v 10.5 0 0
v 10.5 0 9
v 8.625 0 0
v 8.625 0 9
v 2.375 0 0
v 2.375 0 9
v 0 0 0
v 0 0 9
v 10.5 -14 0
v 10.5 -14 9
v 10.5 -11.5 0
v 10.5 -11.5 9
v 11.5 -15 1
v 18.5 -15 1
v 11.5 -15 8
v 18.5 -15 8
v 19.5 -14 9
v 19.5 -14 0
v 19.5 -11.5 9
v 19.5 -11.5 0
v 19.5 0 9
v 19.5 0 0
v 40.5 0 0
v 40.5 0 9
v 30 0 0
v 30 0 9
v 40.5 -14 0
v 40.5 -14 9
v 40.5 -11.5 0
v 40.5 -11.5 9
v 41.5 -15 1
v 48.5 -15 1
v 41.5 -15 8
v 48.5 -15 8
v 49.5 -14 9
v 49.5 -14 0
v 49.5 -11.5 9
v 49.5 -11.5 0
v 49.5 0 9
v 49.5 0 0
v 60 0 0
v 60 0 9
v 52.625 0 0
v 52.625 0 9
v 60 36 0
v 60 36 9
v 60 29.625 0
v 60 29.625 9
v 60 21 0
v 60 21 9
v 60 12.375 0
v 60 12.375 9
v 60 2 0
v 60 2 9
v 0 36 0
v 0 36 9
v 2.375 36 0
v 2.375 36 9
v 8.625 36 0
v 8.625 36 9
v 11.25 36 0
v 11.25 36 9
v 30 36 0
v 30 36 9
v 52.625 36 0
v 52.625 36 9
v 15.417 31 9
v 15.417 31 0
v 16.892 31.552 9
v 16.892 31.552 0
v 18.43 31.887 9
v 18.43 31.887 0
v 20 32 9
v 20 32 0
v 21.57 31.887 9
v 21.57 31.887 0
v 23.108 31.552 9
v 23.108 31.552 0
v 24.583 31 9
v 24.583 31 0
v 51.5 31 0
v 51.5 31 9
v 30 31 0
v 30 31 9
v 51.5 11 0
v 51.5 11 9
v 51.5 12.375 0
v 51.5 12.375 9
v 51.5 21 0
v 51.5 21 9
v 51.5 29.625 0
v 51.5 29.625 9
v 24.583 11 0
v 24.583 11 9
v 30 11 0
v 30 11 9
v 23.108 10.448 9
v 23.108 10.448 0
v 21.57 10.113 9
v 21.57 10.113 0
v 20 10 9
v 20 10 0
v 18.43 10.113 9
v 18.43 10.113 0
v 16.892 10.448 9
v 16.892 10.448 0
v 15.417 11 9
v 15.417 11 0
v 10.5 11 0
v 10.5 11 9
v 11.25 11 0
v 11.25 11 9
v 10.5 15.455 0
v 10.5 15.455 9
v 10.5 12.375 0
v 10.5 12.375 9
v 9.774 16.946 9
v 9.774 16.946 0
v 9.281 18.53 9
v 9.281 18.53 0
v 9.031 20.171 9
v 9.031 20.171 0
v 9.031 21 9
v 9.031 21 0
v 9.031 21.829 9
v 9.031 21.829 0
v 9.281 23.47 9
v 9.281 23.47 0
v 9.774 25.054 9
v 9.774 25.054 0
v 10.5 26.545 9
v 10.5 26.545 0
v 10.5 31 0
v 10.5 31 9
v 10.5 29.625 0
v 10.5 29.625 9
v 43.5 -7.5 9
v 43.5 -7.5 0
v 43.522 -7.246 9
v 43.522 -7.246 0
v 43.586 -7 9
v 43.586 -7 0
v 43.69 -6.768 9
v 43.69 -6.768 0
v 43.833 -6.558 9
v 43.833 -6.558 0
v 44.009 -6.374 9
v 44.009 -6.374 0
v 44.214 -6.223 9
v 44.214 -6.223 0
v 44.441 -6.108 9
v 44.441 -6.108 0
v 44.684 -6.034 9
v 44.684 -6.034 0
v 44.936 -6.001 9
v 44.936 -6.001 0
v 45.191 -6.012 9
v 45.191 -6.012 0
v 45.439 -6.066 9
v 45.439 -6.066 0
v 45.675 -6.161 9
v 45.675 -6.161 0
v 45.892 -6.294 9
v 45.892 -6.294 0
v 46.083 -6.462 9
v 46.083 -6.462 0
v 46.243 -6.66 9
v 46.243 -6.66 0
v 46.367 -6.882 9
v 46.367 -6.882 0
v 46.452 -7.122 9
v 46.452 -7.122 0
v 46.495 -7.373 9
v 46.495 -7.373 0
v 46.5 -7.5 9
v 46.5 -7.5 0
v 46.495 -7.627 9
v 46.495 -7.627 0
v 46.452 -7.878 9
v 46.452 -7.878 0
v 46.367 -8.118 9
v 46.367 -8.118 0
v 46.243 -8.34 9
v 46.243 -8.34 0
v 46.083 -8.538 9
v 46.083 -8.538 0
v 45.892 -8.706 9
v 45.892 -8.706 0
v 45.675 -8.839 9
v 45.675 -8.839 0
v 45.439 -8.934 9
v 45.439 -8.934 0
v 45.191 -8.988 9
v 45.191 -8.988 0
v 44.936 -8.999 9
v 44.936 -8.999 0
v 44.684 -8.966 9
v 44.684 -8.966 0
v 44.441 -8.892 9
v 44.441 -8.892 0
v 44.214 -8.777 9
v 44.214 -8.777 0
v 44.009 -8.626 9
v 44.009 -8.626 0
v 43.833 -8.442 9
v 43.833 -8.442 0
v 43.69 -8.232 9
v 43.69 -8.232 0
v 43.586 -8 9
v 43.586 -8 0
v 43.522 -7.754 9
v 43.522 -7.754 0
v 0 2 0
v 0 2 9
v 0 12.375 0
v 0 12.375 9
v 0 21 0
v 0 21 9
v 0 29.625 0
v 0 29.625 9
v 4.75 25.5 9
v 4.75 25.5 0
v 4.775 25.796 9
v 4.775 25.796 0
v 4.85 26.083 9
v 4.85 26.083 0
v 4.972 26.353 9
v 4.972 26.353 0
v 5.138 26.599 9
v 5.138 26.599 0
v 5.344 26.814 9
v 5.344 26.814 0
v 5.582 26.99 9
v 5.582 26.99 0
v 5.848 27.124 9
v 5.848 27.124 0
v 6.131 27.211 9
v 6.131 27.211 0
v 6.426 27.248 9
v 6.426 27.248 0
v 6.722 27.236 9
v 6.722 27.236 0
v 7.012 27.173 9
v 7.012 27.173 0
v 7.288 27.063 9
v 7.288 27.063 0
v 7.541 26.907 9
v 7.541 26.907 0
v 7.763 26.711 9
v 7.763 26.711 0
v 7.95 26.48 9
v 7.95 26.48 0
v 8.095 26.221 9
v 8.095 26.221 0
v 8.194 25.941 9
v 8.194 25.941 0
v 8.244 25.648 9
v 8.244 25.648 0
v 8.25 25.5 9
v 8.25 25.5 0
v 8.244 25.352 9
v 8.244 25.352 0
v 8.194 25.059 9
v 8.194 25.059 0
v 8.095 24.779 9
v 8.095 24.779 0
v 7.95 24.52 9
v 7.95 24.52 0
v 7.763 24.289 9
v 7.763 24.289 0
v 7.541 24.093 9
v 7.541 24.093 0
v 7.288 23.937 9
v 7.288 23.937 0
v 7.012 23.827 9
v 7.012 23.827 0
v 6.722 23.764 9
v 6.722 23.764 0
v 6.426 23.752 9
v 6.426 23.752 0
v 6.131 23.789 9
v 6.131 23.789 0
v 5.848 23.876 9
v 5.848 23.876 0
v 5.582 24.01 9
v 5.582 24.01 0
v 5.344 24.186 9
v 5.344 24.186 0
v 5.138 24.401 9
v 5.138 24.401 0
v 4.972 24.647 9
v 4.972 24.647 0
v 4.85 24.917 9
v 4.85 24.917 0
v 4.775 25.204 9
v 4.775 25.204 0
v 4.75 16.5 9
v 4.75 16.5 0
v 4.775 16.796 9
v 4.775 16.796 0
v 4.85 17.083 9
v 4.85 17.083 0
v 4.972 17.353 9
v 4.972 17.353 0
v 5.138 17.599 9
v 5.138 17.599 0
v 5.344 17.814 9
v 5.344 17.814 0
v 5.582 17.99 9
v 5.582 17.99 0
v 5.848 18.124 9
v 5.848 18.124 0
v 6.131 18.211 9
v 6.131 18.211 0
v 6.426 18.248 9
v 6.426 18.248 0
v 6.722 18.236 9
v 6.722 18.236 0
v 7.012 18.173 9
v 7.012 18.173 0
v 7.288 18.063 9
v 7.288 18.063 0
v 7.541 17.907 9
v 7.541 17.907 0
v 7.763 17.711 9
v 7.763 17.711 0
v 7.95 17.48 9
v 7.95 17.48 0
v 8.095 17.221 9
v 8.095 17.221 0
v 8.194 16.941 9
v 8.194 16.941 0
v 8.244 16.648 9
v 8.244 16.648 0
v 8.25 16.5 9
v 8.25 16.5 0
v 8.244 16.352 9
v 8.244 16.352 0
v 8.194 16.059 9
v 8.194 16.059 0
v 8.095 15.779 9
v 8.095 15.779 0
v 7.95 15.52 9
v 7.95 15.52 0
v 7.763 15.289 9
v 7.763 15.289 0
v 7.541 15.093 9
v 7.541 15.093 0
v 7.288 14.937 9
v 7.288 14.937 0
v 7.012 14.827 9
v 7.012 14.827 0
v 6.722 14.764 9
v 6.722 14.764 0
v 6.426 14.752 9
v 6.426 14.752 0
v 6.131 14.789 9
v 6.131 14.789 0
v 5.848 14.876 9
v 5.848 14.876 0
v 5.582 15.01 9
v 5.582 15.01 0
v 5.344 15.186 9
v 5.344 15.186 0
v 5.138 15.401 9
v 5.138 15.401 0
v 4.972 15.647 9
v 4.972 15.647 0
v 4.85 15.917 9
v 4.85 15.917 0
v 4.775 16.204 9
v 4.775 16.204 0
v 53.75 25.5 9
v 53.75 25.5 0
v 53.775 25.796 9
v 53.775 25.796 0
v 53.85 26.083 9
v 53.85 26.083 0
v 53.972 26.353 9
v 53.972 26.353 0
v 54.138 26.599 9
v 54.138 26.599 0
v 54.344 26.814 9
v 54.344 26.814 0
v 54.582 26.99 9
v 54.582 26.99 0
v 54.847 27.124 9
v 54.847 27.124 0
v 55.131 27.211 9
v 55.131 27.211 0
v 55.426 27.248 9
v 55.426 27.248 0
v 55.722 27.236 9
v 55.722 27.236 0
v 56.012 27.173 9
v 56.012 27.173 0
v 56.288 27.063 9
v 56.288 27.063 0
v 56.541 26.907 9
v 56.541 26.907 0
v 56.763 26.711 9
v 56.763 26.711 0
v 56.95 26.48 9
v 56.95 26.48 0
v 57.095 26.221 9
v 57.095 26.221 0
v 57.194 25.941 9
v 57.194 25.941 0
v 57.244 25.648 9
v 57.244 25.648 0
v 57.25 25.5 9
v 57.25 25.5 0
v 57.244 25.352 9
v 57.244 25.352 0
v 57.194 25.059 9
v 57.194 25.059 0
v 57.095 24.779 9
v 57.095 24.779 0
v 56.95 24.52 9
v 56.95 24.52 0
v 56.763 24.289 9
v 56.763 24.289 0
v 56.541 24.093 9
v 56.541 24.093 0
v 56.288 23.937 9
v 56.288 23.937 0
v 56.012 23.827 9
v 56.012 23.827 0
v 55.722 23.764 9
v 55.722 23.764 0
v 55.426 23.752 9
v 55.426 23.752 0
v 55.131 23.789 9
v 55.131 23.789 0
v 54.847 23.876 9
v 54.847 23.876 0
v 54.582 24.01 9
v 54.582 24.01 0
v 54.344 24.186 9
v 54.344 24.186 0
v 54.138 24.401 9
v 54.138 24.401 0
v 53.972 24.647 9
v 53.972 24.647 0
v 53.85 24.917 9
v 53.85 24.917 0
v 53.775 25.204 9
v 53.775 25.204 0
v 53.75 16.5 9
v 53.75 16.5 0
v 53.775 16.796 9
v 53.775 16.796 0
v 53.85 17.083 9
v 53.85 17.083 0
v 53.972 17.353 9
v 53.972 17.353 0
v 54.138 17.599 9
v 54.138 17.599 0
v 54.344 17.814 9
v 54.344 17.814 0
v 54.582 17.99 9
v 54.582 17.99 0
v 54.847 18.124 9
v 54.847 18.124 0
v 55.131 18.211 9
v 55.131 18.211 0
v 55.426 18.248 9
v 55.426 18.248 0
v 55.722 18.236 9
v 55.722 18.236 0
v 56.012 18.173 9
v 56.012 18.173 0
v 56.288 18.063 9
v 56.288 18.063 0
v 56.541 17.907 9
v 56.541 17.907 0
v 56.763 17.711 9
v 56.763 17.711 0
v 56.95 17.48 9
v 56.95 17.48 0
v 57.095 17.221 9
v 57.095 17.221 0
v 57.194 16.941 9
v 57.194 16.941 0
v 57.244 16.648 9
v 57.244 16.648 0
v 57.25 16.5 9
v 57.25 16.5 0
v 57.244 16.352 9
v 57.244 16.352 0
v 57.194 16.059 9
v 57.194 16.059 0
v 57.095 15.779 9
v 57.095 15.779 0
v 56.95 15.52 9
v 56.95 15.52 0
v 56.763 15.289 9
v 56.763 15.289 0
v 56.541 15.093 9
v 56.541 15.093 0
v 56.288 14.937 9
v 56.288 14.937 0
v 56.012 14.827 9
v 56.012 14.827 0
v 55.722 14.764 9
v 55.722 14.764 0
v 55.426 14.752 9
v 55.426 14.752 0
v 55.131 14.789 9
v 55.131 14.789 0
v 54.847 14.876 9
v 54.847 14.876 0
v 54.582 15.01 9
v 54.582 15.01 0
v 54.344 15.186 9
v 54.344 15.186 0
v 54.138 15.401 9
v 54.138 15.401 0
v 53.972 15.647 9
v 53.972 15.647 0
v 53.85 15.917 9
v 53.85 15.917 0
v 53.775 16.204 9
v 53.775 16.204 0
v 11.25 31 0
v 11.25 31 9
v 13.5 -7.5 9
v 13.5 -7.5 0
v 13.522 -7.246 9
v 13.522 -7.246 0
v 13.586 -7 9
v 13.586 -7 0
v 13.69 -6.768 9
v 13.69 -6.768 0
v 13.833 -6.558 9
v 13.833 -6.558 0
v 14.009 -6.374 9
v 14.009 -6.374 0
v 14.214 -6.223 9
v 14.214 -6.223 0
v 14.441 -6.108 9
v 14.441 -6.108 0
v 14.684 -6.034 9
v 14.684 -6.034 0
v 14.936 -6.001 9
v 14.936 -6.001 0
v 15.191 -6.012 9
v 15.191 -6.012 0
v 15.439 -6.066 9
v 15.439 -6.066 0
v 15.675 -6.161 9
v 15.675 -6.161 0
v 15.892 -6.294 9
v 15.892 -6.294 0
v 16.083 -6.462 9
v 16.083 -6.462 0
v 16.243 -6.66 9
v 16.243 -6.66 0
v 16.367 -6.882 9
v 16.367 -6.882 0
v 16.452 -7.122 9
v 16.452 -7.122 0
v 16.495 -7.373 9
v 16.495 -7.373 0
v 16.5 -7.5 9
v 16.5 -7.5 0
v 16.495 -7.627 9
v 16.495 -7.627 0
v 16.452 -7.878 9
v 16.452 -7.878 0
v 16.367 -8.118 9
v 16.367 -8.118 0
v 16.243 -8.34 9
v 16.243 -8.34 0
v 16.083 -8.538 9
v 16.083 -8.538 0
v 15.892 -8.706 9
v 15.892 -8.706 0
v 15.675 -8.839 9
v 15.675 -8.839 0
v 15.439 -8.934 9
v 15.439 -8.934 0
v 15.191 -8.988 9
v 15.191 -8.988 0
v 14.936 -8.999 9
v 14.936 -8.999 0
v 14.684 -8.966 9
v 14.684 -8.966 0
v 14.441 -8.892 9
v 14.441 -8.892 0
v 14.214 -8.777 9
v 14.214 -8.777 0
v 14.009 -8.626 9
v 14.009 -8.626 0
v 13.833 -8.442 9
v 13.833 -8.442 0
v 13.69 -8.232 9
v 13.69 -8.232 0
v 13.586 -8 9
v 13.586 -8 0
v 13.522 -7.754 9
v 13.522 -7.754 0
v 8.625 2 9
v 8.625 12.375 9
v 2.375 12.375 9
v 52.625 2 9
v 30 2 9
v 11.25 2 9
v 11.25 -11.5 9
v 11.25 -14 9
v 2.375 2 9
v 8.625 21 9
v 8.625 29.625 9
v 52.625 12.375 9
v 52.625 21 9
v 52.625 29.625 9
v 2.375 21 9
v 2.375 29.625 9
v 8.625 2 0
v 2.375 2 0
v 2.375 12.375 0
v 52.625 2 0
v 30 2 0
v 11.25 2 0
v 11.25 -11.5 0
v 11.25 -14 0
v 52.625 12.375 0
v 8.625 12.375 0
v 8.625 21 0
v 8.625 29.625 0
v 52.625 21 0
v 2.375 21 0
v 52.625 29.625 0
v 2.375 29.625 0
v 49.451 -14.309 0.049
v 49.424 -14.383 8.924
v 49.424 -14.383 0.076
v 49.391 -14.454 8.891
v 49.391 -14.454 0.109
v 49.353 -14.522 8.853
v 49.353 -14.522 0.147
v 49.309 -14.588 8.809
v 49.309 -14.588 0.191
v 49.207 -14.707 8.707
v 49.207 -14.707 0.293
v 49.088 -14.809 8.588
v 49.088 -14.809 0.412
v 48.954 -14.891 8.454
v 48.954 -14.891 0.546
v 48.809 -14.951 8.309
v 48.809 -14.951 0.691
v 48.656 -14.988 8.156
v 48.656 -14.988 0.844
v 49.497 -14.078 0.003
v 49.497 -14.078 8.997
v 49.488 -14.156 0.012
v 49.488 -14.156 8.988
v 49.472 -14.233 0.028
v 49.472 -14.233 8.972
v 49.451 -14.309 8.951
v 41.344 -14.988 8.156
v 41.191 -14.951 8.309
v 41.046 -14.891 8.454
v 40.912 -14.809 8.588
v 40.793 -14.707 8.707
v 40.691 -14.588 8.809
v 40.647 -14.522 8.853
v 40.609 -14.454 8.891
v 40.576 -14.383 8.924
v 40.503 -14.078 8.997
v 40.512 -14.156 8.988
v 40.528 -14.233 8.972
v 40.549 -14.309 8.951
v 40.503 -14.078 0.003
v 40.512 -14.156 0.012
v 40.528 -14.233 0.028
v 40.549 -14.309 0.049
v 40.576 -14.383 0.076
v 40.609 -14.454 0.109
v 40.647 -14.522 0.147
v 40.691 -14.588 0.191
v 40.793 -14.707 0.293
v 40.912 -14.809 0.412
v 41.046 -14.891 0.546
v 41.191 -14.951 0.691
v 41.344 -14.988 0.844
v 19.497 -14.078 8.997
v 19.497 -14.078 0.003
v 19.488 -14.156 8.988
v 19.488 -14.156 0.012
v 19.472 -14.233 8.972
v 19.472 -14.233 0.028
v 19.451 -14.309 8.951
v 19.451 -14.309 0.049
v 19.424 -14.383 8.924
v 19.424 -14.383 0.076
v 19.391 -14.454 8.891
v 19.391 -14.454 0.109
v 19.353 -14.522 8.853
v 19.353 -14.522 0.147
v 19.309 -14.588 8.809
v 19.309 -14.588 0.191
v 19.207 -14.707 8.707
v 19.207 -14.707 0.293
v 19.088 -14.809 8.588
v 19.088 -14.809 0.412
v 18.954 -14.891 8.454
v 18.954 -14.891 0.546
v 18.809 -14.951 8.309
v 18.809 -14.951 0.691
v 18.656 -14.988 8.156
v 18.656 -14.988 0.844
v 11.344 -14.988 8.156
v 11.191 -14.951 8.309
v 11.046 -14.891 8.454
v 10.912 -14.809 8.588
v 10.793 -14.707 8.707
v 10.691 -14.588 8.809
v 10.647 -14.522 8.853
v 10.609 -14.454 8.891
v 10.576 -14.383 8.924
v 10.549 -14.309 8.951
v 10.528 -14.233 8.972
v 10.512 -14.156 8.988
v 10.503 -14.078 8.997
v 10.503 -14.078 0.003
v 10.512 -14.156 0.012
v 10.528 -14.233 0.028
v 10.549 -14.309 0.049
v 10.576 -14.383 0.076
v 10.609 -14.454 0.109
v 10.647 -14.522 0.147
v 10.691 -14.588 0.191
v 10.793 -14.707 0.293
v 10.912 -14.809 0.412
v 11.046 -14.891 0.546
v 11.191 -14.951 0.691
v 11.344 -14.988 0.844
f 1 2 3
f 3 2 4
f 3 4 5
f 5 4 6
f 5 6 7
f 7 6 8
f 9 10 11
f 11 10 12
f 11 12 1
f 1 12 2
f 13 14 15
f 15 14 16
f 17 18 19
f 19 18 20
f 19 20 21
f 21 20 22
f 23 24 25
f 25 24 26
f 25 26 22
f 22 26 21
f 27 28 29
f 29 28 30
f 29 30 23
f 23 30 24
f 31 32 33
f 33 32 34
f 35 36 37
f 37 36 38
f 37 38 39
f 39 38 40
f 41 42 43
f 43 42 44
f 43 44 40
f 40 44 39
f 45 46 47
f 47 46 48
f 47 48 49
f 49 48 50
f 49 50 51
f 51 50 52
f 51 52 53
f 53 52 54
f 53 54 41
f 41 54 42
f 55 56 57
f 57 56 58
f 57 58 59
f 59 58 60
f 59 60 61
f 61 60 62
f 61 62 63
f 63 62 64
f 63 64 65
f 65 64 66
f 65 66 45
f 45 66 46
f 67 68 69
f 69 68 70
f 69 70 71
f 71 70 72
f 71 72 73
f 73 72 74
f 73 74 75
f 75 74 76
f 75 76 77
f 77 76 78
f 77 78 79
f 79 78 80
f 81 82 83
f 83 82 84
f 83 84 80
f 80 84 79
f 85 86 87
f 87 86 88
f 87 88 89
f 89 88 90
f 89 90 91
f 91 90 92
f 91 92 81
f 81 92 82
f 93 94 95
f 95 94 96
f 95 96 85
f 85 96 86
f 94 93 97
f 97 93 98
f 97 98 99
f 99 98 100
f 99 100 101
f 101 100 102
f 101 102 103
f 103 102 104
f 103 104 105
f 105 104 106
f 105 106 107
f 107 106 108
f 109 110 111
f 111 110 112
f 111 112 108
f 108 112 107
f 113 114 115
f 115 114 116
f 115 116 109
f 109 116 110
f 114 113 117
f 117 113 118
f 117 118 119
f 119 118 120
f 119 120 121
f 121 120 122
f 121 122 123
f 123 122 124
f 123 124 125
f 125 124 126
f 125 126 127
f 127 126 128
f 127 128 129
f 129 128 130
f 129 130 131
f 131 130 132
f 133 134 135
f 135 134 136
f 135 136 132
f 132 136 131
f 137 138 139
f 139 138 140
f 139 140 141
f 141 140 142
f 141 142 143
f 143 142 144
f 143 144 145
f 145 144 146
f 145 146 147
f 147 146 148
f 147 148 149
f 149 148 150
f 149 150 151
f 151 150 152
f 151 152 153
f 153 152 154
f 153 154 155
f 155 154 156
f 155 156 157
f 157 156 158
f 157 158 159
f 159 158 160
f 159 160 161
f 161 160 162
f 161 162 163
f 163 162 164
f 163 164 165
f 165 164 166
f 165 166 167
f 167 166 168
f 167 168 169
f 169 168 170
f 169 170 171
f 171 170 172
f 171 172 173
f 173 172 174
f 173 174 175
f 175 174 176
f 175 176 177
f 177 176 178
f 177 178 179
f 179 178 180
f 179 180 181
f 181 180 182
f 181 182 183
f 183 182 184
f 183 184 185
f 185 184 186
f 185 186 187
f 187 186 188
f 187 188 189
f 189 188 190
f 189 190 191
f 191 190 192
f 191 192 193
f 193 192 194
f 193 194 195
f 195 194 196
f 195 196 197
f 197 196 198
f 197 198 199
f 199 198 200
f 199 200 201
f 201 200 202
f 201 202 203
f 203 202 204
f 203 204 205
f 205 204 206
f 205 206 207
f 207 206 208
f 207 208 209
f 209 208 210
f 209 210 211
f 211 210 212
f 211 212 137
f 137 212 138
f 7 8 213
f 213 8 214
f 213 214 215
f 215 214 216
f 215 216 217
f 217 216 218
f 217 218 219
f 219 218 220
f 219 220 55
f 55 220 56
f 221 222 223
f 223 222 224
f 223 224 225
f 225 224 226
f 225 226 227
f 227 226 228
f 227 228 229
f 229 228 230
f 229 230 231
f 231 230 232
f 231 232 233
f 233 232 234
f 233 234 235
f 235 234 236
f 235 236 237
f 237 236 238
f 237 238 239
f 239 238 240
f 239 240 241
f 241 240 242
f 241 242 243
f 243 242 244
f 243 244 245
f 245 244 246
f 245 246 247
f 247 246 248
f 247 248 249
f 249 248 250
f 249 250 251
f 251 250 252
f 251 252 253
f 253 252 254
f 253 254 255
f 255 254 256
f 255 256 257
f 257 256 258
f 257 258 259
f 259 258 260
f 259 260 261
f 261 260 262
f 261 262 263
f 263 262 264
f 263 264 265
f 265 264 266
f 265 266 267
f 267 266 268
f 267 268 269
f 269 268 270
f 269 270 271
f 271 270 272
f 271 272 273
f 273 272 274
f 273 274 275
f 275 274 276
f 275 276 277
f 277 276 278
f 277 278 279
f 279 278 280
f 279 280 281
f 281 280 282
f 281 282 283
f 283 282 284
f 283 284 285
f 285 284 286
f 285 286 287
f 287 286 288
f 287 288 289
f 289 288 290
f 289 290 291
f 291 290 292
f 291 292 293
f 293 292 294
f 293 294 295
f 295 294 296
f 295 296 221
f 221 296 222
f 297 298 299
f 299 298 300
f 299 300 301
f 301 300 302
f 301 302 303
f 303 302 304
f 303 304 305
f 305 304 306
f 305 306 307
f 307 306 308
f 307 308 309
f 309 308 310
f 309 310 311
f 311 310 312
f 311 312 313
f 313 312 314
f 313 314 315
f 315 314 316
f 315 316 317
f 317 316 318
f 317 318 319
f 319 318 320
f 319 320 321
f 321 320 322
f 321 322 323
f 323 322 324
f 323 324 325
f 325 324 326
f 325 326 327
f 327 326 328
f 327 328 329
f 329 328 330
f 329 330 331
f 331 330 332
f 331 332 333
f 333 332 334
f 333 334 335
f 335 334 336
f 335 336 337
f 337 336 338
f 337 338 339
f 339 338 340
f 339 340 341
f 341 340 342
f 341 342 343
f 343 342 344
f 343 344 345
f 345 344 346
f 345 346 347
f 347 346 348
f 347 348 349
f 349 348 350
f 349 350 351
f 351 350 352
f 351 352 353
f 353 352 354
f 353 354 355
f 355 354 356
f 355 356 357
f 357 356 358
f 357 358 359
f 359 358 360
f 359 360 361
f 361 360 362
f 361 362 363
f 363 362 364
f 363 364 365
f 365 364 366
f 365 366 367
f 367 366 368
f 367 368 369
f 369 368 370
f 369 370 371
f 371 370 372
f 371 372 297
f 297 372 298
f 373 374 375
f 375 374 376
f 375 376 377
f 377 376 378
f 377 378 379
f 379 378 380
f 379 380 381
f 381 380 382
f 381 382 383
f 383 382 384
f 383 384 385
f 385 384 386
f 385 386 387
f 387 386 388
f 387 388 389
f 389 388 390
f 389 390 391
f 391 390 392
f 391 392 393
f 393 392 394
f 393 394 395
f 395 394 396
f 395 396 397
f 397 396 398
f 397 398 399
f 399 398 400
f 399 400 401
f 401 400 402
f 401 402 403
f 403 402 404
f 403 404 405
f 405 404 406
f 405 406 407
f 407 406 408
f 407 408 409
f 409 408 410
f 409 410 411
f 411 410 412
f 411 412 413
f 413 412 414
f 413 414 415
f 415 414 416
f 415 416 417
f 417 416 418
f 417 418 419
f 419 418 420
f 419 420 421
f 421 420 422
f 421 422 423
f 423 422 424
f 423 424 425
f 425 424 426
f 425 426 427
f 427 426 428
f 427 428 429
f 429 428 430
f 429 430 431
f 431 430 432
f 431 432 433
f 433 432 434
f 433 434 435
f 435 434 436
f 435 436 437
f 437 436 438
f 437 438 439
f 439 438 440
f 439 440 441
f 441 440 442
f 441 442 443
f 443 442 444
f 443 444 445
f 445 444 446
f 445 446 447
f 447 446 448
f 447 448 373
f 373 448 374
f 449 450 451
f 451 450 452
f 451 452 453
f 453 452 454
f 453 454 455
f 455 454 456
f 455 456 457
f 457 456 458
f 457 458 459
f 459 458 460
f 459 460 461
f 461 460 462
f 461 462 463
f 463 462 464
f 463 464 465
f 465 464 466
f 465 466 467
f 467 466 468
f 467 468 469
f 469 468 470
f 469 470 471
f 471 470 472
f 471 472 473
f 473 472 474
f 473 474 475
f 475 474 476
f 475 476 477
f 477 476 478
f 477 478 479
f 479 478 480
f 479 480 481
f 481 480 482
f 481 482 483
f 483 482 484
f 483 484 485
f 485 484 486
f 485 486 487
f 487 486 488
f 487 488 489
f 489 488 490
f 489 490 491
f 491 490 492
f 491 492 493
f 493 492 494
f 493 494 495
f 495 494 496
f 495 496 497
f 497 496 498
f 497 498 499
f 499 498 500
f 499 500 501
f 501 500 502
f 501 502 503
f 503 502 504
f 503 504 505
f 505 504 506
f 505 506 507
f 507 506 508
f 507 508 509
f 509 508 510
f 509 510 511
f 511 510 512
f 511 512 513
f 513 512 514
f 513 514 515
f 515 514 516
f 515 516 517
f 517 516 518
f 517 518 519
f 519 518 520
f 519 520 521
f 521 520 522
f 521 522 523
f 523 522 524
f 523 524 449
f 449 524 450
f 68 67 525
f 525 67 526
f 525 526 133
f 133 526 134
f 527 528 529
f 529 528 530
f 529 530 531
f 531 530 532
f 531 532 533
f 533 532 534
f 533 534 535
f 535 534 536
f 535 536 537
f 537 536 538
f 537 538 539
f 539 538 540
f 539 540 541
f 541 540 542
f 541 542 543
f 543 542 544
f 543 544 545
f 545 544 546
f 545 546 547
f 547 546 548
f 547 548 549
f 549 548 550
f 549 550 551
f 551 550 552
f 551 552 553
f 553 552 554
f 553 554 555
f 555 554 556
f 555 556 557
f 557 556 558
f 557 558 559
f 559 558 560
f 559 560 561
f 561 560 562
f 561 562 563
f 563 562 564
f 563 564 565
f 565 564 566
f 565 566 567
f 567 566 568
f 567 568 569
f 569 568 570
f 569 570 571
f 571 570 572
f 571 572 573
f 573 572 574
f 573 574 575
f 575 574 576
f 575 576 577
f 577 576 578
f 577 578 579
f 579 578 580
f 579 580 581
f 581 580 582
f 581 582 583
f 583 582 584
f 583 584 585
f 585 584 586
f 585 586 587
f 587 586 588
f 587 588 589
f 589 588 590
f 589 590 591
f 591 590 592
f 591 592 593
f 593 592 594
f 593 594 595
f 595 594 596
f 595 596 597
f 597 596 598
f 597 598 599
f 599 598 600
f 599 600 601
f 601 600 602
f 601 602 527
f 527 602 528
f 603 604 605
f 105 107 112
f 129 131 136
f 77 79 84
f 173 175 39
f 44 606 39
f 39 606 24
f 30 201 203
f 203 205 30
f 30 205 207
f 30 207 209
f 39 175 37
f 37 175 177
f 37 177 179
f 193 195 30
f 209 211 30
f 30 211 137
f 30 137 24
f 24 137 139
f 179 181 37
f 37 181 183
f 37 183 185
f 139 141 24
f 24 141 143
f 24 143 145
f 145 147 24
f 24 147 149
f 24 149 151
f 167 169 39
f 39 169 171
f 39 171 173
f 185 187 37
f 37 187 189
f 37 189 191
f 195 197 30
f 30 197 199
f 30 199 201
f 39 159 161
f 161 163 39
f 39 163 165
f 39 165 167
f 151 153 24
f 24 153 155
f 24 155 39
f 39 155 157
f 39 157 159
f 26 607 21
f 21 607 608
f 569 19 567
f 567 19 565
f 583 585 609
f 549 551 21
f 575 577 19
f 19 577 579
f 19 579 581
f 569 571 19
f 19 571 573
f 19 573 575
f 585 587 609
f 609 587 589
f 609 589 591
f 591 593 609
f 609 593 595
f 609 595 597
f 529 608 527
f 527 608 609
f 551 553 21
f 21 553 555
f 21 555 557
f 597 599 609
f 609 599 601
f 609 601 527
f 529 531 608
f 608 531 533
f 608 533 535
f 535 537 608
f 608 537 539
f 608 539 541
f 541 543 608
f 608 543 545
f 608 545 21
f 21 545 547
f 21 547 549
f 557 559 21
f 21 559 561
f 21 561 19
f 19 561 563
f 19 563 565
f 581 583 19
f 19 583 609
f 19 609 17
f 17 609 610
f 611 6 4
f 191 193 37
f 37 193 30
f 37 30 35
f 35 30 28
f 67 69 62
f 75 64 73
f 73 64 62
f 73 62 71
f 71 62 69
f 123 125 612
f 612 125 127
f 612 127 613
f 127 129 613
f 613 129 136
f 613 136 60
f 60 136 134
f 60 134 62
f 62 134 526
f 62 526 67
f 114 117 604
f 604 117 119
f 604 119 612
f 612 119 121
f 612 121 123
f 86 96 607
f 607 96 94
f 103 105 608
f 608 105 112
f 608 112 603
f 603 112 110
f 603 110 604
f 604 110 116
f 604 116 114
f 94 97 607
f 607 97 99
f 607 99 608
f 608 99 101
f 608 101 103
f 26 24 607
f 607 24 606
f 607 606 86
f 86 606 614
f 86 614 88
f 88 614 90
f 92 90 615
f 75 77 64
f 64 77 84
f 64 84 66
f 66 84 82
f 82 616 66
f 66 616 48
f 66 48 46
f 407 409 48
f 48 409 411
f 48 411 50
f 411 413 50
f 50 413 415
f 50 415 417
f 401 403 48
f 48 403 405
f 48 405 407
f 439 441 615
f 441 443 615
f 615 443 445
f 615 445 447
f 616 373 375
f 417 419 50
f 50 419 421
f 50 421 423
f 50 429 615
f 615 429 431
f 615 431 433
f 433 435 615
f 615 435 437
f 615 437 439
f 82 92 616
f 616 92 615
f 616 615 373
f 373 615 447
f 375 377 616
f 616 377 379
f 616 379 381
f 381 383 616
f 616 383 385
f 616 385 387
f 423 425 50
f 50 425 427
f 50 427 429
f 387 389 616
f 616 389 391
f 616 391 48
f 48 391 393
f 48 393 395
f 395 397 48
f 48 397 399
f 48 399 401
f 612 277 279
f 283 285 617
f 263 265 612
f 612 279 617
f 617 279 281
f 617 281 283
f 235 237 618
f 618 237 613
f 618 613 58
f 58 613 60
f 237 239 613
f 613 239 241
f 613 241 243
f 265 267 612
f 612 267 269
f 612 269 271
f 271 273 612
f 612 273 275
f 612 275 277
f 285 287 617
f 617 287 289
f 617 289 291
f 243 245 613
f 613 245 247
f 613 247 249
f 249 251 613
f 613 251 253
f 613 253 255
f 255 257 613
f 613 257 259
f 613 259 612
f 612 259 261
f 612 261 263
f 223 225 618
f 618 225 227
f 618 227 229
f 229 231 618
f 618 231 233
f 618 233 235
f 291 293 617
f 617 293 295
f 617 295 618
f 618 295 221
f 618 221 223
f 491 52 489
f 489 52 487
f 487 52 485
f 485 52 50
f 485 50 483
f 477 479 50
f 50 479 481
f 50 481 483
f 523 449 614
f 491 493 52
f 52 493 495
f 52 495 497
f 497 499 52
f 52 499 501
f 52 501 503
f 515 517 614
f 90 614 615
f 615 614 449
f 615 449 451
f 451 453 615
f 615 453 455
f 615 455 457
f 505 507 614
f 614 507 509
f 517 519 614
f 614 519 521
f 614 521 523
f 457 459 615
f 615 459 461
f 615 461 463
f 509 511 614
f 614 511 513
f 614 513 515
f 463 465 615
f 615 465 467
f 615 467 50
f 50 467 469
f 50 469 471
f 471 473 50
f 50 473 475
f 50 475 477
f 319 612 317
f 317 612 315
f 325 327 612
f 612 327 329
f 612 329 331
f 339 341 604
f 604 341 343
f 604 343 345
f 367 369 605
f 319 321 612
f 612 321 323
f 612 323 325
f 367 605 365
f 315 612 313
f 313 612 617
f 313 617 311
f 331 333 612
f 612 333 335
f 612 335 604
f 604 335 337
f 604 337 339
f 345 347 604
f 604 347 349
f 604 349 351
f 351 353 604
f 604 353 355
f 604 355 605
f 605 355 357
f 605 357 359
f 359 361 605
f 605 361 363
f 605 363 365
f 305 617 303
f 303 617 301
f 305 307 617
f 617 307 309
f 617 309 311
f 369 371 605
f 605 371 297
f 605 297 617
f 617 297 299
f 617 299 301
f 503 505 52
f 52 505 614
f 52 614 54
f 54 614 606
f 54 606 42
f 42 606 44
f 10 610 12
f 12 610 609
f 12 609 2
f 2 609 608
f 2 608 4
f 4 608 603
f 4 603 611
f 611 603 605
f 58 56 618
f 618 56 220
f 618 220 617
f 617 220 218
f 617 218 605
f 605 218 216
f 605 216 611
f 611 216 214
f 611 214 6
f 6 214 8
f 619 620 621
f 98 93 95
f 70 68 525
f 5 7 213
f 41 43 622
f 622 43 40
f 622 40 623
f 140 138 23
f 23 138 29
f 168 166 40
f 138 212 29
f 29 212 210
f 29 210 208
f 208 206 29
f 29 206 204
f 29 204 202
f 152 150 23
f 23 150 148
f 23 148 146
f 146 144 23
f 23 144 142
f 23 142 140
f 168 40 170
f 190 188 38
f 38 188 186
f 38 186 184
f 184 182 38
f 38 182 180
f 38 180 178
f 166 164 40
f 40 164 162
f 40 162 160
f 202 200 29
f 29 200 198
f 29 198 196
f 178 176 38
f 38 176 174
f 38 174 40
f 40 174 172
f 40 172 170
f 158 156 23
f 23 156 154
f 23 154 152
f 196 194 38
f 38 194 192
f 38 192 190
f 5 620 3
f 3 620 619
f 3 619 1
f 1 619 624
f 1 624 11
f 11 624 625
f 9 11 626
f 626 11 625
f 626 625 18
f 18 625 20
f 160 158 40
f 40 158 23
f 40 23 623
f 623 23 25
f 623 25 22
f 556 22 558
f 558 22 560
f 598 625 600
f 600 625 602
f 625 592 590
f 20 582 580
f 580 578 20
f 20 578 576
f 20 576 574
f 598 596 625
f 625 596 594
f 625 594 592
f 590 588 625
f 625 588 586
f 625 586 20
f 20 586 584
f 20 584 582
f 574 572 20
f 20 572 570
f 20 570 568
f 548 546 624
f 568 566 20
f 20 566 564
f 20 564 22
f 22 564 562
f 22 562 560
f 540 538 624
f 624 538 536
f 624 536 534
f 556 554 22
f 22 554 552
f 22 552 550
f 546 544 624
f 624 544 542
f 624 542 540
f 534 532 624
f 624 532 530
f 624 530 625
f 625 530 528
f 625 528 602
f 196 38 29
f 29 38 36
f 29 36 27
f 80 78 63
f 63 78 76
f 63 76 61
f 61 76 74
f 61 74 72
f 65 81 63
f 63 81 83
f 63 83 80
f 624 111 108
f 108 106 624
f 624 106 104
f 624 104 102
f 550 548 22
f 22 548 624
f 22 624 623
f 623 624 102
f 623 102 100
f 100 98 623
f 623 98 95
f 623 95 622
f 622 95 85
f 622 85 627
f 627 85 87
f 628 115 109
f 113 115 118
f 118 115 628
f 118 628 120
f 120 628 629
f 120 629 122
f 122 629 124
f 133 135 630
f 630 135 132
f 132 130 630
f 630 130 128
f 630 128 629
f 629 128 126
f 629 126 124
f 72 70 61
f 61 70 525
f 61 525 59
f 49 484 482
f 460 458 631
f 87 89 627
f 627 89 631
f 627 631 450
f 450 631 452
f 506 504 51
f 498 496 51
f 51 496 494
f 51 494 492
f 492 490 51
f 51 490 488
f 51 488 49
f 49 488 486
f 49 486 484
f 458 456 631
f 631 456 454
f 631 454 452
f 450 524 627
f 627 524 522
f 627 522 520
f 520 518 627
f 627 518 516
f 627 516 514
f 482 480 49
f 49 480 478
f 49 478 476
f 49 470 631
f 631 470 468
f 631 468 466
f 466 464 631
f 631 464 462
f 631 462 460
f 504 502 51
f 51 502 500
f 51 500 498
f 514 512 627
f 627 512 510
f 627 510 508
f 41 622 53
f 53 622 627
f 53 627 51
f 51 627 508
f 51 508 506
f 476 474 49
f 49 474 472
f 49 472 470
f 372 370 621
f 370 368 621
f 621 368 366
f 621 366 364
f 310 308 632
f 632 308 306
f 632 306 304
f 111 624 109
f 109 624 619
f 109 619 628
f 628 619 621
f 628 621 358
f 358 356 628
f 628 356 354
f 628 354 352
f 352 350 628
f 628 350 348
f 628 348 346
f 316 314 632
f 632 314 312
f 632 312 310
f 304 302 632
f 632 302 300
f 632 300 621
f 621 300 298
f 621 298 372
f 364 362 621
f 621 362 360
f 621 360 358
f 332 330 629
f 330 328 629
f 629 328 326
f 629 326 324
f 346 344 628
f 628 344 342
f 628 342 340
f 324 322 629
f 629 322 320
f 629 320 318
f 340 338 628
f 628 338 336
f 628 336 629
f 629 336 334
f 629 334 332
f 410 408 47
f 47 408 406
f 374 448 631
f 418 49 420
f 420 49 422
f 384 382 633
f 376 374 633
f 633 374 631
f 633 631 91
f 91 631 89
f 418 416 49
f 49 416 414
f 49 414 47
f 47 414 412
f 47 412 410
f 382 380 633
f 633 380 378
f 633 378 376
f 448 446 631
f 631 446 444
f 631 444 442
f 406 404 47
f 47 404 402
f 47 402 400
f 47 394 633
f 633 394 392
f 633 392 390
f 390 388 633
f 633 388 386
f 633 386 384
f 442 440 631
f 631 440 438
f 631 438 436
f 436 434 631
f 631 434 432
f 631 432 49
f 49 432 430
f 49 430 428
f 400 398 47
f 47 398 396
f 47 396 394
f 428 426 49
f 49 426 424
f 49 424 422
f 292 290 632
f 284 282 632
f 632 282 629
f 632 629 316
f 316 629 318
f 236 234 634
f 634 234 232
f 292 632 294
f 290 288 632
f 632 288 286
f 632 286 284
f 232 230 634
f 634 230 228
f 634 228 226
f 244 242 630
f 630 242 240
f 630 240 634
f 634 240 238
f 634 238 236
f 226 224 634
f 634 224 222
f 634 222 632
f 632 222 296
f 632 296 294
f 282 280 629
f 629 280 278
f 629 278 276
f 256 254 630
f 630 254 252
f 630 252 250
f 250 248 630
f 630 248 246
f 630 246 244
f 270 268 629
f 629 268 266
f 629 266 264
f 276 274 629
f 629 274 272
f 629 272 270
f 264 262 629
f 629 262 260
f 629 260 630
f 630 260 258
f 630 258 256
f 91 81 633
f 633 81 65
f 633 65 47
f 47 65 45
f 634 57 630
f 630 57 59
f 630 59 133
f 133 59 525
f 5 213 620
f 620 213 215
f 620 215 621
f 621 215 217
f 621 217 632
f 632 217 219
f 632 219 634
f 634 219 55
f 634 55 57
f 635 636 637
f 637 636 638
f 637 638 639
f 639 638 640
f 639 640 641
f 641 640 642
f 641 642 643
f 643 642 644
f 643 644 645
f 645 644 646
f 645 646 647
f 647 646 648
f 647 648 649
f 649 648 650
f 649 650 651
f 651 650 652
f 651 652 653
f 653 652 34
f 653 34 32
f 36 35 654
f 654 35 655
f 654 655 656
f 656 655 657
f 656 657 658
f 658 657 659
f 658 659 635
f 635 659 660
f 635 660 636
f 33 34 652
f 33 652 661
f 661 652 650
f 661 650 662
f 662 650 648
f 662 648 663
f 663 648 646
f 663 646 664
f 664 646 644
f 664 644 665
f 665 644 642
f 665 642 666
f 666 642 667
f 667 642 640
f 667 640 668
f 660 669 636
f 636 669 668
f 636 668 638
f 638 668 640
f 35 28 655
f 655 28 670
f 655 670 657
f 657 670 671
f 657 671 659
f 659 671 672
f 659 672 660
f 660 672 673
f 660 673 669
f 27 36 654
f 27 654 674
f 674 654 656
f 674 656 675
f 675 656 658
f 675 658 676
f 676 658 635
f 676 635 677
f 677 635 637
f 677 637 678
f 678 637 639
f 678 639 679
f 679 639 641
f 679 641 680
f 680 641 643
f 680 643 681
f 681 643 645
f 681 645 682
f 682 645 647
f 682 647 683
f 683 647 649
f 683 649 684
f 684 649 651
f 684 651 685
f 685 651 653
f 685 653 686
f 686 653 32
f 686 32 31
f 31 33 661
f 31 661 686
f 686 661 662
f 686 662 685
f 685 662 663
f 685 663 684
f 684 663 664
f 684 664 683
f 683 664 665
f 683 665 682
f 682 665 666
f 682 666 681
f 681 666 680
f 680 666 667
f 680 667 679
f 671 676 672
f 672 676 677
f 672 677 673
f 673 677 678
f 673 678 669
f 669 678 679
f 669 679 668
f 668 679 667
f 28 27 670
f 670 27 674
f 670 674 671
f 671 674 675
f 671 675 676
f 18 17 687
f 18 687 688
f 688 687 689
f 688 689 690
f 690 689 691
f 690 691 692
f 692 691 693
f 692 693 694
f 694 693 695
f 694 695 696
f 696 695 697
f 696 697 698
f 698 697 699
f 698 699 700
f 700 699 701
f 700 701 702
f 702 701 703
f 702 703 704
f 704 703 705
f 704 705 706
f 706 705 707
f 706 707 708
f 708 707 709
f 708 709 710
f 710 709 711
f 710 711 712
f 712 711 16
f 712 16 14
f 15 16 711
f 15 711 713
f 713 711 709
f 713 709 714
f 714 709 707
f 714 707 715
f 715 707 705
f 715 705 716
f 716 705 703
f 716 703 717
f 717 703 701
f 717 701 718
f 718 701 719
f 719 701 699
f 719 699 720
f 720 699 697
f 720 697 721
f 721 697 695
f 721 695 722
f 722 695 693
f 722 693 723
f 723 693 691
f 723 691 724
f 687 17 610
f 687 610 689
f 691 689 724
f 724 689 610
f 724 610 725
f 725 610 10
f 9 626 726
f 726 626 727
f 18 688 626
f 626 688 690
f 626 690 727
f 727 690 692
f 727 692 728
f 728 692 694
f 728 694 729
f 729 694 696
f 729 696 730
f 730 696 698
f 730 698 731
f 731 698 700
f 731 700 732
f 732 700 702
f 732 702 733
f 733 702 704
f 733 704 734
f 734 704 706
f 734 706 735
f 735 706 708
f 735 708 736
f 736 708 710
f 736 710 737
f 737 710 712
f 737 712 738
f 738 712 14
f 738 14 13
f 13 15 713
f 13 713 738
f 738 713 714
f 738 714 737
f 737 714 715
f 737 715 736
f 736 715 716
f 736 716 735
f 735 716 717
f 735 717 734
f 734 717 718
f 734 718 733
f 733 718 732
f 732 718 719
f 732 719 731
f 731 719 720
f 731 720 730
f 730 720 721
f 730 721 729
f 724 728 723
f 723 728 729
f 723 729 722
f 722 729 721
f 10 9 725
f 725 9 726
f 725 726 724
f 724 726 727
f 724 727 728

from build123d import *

# Parameters (mm, degrees)
CROQUIS1_R              = 1.75
CROQUIS1_R_2            = 1.5
SALIENTE_EXTRUIR1_DEPTH = 9
REDONDEO1_R             = 1


with BuildPart() as part:
    # Croquis1 → Saliente-Extruir1 (new body)
    with BuildSketch(Plane.XY):
        Polygon((0, 36), (0, 0), (10.5, 0), (10.5, -15), (19.5, -15), (19.5, 0), (40.5, 0), (40.5, -15), (49.5, -15), (49.5, 0), (60, 0), (60, 36), align=None)
        with Locations((6.5, 16.5)):
            Circle(CROQUIS1_R, mode=Mode.SUBTRACT)
        with Locations((6.5, 25.5)):
            Circle(CROQUIS1_R, mode=Mode.SUBTRACT)
        with BuildLine():
            Line((10.5, 26.545268253), (10.5, 31))
            Line((10.5, 31), (15.417424305, 31))
            ThreePointArc((15.417424305, 31), (20, 32), (24.582575695, 31))
            Line((24.582575695, 31), (51.5, 31))
            Line((51.5, 31), (51.5, 11))
            Line((51.5, 11), (24.582575695, 11))
            ThreePointArc((24.582575695, 11), (20, 10), (15.417424305, 11))
            Line((15.417424305, 11), (10.5, 11))
            Line((10.5, 11), (10.5, 15.454731747))
            ThreePointArc((10.5, 15.454731747), (9, 21), (10.5, 26.545268253))
        make_face(mode=Mode.SUBTRACT)
        with Locations((55.5, 16.5)):
            Circle(CROQUIS1_R, mode=Mode.SUBTRACT)
        with Locations((55.5, 25.5)):
            Circle(CROQUIS1_R, mode=Mode.SUBTRACT)
        with Locations((15, -7.5)):
            Circle(CROQUIS1_R_2, mode=Mode.SUBTRACT)
        with Locations((45, -7.5)):
            Circle(CROQUIS1_R_2, mode=Mode.SUBTRACT)
    extrude(amount=SALIENTE_EXTRUIR1_DEPTH)

    # Redondeo1
    redondeo1_edges = [part.edges().sort_by_distance(p)[0] for p in [
        (45, -15, 0),
        (15, -15, 0),
        (49.5, -15, 4.5),
        (40.5, -15, 4.5),
        (19.5, -15, 4.5),
        (10.5, -15, 4.5),
        (15, -15, 9),
        (45, -15, 9),
    ]]
    fillet(redondeo1_edges, radius=REDONDEO1_R)


solid = part.part
